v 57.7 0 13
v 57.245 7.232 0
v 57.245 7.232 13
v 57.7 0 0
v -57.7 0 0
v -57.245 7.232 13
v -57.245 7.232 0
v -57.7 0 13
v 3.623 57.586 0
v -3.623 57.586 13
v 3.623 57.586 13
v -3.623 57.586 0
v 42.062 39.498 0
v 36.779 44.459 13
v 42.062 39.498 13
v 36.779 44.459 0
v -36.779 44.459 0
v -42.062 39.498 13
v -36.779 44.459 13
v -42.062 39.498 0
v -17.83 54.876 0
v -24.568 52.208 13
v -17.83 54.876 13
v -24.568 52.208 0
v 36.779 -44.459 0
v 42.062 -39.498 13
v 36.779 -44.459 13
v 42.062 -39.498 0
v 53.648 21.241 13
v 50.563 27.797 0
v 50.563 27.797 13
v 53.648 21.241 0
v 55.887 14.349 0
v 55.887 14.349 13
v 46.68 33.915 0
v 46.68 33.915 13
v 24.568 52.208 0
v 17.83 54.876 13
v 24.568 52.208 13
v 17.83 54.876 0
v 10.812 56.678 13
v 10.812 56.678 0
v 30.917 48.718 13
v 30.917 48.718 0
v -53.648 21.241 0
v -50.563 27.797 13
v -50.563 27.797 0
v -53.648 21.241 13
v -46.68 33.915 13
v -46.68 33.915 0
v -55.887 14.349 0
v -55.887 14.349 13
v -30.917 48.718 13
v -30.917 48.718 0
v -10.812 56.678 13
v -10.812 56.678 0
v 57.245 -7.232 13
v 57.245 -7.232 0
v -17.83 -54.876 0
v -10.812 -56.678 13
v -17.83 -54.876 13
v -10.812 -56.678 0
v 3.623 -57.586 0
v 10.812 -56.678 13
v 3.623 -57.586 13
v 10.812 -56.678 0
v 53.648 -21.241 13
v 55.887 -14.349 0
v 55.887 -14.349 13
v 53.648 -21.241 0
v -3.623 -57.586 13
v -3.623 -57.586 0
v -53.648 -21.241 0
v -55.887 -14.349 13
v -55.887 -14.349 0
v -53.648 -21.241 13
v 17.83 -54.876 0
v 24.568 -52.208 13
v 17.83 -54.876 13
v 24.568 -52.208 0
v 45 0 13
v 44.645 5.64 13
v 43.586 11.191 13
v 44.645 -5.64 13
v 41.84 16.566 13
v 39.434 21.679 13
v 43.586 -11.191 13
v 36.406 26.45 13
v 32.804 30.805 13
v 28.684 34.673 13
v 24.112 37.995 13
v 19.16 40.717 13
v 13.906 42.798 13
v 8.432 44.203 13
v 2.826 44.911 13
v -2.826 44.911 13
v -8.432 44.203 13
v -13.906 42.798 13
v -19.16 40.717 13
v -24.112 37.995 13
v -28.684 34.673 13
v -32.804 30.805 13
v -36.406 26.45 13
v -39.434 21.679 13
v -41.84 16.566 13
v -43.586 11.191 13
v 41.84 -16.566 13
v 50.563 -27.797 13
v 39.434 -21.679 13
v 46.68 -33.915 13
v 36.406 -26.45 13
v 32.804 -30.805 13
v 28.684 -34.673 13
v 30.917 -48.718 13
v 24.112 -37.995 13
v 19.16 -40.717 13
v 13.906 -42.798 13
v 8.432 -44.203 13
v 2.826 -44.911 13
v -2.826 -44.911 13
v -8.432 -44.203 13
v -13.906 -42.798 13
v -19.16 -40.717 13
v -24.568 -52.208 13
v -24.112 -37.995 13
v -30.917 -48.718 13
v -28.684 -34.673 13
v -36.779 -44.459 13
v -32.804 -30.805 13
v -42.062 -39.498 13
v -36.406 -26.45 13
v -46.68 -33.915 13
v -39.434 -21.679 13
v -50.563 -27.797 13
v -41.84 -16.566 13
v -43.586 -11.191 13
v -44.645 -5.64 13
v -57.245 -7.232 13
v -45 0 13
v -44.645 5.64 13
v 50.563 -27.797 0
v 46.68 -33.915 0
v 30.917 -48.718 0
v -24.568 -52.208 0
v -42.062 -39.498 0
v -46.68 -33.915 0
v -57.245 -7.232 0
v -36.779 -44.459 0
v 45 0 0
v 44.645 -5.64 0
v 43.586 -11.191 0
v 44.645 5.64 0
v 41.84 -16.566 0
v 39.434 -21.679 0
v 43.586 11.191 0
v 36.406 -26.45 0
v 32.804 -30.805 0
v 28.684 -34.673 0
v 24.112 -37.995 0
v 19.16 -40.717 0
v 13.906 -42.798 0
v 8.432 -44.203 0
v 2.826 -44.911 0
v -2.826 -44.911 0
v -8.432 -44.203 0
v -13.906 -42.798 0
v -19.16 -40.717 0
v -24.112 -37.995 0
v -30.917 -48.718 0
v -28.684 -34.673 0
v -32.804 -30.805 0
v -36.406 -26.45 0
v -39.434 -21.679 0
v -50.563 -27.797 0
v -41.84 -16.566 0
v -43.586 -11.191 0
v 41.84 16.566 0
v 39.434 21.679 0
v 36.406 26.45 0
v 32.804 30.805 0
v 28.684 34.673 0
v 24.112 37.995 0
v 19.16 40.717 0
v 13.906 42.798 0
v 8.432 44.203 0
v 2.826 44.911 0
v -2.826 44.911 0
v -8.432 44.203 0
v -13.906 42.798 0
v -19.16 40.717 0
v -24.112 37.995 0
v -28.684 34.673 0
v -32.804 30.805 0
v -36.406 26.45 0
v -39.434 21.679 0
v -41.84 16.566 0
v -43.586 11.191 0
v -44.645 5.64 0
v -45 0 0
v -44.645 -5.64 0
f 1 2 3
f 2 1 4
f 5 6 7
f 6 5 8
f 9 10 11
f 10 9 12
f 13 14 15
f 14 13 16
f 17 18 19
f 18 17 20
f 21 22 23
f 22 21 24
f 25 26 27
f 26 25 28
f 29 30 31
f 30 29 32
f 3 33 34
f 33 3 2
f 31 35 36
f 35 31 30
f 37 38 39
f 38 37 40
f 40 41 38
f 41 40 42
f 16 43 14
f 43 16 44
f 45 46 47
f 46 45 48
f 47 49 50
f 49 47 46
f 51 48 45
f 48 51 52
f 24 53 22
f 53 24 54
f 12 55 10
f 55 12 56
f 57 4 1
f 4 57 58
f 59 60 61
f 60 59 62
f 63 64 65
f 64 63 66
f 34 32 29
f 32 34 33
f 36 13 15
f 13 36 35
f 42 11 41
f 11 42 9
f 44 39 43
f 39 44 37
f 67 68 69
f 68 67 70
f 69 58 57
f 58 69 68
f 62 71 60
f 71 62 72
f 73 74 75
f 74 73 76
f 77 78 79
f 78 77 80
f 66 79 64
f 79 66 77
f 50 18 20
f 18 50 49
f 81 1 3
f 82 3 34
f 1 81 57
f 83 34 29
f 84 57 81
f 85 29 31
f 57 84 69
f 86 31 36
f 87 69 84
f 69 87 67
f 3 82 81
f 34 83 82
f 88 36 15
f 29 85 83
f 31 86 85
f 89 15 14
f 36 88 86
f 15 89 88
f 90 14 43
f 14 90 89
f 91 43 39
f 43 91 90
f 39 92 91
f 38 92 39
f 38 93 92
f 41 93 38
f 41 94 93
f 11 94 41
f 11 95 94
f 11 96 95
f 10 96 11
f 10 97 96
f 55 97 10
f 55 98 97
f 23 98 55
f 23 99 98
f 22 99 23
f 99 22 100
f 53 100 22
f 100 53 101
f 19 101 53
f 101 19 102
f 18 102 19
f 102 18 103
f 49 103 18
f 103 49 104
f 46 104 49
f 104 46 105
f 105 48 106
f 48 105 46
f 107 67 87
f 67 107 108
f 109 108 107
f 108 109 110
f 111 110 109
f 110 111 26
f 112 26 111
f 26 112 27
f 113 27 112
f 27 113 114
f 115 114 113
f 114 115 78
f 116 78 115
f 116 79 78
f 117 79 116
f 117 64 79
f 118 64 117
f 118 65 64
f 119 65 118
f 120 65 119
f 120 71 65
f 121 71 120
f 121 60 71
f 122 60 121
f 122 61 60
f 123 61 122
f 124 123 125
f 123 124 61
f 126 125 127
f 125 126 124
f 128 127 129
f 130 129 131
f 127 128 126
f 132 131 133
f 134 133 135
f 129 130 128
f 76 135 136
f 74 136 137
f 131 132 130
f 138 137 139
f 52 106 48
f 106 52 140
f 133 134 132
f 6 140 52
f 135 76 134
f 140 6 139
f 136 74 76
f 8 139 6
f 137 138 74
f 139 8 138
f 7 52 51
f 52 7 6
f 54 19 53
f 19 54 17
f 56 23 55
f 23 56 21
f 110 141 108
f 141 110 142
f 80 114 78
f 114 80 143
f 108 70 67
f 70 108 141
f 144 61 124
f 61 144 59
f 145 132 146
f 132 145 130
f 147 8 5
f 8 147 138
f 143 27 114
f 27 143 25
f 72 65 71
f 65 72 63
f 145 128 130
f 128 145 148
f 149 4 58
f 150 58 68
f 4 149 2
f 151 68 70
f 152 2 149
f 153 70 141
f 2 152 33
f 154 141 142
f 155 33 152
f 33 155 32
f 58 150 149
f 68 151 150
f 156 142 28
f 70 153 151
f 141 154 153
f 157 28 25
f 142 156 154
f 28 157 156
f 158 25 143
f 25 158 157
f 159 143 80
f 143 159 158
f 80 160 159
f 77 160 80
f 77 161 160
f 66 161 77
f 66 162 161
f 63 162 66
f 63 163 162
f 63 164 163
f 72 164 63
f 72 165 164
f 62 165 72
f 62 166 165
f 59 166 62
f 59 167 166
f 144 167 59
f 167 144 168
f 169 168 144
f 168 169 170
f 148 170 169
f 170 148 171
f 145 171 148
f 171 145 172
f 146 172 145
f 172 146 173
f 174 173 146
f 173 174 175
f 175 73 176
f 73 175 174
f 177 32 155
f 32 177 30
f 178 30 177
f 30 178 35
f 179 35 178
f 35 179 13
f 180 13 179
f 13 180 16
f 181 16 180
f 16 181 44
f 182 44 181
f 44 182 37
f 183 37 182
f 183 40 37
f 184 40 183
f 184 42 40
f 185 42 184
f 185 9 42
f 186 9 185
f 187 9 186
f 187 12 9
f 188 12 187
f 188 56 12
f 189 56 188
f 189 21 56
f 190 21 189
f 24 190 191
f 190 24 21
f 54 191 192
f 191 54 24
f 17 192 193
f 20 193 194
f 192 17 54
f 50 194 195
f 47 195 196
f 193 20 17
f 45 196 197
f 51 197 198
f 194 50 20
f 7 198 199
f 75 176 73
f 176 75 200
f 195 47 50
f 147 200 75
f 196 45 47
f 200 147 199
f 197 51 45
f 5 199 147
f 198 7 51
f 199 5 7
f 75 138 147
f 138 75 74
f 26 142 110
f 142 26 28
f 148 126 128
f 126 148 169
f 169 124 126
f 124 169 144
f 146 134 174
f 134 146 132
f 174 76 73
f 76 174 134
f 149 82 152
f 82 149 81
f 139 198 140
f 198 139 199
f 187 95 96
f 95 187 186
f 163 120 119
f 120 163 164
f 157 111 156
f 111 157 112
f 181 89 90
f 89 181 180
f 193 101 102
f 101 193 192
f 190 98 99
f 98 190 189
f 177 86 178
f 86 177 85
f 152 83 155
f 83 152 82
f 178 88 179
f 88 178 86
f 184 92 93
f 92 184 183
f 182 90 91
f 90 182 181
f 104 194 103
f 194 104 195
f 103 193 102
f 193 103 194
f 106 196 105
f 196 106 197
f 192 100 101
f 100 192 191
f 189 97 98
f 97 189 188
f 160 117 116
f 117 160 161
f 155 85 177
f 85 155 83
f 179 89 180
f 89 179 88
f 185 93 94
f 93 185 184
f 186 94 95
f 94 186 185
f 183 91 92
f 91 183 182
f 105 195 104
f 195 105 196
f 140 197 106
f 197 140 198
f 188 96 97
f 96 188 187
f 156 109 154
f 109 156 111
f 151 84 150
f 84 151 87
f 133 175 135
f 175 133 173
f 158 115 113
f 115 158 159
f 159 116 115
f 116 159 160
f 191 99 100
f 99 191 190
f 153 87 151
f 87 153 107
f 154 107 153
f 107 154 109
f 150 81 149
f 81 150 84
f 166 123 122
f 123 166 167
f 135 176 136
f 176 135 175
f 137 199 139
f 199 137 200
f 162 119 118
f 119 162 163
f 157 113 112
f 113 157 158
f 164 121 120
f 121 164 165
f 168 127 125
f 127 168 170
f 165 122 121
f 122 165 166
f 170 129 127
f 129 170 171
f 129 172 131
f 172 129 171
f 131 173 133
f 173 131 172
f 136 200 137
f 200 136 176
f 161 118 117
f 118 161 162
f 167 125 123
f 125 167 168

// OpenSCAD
$fn = 50;


difference() {
	union() {
		translate(v = [0, 0, 0]) {
			rotate(a = [0, 0, 0]) {
				cylinder(h = 13, r = 57.7000000000);
			}
		}
	}
	union() {
		translate(v = [0, 0, 0]) {
			rotate(a = [0, 0, 0]) {
				cylinder(h = 13, r = 45.0000000000);
			}
		}
	}
}
